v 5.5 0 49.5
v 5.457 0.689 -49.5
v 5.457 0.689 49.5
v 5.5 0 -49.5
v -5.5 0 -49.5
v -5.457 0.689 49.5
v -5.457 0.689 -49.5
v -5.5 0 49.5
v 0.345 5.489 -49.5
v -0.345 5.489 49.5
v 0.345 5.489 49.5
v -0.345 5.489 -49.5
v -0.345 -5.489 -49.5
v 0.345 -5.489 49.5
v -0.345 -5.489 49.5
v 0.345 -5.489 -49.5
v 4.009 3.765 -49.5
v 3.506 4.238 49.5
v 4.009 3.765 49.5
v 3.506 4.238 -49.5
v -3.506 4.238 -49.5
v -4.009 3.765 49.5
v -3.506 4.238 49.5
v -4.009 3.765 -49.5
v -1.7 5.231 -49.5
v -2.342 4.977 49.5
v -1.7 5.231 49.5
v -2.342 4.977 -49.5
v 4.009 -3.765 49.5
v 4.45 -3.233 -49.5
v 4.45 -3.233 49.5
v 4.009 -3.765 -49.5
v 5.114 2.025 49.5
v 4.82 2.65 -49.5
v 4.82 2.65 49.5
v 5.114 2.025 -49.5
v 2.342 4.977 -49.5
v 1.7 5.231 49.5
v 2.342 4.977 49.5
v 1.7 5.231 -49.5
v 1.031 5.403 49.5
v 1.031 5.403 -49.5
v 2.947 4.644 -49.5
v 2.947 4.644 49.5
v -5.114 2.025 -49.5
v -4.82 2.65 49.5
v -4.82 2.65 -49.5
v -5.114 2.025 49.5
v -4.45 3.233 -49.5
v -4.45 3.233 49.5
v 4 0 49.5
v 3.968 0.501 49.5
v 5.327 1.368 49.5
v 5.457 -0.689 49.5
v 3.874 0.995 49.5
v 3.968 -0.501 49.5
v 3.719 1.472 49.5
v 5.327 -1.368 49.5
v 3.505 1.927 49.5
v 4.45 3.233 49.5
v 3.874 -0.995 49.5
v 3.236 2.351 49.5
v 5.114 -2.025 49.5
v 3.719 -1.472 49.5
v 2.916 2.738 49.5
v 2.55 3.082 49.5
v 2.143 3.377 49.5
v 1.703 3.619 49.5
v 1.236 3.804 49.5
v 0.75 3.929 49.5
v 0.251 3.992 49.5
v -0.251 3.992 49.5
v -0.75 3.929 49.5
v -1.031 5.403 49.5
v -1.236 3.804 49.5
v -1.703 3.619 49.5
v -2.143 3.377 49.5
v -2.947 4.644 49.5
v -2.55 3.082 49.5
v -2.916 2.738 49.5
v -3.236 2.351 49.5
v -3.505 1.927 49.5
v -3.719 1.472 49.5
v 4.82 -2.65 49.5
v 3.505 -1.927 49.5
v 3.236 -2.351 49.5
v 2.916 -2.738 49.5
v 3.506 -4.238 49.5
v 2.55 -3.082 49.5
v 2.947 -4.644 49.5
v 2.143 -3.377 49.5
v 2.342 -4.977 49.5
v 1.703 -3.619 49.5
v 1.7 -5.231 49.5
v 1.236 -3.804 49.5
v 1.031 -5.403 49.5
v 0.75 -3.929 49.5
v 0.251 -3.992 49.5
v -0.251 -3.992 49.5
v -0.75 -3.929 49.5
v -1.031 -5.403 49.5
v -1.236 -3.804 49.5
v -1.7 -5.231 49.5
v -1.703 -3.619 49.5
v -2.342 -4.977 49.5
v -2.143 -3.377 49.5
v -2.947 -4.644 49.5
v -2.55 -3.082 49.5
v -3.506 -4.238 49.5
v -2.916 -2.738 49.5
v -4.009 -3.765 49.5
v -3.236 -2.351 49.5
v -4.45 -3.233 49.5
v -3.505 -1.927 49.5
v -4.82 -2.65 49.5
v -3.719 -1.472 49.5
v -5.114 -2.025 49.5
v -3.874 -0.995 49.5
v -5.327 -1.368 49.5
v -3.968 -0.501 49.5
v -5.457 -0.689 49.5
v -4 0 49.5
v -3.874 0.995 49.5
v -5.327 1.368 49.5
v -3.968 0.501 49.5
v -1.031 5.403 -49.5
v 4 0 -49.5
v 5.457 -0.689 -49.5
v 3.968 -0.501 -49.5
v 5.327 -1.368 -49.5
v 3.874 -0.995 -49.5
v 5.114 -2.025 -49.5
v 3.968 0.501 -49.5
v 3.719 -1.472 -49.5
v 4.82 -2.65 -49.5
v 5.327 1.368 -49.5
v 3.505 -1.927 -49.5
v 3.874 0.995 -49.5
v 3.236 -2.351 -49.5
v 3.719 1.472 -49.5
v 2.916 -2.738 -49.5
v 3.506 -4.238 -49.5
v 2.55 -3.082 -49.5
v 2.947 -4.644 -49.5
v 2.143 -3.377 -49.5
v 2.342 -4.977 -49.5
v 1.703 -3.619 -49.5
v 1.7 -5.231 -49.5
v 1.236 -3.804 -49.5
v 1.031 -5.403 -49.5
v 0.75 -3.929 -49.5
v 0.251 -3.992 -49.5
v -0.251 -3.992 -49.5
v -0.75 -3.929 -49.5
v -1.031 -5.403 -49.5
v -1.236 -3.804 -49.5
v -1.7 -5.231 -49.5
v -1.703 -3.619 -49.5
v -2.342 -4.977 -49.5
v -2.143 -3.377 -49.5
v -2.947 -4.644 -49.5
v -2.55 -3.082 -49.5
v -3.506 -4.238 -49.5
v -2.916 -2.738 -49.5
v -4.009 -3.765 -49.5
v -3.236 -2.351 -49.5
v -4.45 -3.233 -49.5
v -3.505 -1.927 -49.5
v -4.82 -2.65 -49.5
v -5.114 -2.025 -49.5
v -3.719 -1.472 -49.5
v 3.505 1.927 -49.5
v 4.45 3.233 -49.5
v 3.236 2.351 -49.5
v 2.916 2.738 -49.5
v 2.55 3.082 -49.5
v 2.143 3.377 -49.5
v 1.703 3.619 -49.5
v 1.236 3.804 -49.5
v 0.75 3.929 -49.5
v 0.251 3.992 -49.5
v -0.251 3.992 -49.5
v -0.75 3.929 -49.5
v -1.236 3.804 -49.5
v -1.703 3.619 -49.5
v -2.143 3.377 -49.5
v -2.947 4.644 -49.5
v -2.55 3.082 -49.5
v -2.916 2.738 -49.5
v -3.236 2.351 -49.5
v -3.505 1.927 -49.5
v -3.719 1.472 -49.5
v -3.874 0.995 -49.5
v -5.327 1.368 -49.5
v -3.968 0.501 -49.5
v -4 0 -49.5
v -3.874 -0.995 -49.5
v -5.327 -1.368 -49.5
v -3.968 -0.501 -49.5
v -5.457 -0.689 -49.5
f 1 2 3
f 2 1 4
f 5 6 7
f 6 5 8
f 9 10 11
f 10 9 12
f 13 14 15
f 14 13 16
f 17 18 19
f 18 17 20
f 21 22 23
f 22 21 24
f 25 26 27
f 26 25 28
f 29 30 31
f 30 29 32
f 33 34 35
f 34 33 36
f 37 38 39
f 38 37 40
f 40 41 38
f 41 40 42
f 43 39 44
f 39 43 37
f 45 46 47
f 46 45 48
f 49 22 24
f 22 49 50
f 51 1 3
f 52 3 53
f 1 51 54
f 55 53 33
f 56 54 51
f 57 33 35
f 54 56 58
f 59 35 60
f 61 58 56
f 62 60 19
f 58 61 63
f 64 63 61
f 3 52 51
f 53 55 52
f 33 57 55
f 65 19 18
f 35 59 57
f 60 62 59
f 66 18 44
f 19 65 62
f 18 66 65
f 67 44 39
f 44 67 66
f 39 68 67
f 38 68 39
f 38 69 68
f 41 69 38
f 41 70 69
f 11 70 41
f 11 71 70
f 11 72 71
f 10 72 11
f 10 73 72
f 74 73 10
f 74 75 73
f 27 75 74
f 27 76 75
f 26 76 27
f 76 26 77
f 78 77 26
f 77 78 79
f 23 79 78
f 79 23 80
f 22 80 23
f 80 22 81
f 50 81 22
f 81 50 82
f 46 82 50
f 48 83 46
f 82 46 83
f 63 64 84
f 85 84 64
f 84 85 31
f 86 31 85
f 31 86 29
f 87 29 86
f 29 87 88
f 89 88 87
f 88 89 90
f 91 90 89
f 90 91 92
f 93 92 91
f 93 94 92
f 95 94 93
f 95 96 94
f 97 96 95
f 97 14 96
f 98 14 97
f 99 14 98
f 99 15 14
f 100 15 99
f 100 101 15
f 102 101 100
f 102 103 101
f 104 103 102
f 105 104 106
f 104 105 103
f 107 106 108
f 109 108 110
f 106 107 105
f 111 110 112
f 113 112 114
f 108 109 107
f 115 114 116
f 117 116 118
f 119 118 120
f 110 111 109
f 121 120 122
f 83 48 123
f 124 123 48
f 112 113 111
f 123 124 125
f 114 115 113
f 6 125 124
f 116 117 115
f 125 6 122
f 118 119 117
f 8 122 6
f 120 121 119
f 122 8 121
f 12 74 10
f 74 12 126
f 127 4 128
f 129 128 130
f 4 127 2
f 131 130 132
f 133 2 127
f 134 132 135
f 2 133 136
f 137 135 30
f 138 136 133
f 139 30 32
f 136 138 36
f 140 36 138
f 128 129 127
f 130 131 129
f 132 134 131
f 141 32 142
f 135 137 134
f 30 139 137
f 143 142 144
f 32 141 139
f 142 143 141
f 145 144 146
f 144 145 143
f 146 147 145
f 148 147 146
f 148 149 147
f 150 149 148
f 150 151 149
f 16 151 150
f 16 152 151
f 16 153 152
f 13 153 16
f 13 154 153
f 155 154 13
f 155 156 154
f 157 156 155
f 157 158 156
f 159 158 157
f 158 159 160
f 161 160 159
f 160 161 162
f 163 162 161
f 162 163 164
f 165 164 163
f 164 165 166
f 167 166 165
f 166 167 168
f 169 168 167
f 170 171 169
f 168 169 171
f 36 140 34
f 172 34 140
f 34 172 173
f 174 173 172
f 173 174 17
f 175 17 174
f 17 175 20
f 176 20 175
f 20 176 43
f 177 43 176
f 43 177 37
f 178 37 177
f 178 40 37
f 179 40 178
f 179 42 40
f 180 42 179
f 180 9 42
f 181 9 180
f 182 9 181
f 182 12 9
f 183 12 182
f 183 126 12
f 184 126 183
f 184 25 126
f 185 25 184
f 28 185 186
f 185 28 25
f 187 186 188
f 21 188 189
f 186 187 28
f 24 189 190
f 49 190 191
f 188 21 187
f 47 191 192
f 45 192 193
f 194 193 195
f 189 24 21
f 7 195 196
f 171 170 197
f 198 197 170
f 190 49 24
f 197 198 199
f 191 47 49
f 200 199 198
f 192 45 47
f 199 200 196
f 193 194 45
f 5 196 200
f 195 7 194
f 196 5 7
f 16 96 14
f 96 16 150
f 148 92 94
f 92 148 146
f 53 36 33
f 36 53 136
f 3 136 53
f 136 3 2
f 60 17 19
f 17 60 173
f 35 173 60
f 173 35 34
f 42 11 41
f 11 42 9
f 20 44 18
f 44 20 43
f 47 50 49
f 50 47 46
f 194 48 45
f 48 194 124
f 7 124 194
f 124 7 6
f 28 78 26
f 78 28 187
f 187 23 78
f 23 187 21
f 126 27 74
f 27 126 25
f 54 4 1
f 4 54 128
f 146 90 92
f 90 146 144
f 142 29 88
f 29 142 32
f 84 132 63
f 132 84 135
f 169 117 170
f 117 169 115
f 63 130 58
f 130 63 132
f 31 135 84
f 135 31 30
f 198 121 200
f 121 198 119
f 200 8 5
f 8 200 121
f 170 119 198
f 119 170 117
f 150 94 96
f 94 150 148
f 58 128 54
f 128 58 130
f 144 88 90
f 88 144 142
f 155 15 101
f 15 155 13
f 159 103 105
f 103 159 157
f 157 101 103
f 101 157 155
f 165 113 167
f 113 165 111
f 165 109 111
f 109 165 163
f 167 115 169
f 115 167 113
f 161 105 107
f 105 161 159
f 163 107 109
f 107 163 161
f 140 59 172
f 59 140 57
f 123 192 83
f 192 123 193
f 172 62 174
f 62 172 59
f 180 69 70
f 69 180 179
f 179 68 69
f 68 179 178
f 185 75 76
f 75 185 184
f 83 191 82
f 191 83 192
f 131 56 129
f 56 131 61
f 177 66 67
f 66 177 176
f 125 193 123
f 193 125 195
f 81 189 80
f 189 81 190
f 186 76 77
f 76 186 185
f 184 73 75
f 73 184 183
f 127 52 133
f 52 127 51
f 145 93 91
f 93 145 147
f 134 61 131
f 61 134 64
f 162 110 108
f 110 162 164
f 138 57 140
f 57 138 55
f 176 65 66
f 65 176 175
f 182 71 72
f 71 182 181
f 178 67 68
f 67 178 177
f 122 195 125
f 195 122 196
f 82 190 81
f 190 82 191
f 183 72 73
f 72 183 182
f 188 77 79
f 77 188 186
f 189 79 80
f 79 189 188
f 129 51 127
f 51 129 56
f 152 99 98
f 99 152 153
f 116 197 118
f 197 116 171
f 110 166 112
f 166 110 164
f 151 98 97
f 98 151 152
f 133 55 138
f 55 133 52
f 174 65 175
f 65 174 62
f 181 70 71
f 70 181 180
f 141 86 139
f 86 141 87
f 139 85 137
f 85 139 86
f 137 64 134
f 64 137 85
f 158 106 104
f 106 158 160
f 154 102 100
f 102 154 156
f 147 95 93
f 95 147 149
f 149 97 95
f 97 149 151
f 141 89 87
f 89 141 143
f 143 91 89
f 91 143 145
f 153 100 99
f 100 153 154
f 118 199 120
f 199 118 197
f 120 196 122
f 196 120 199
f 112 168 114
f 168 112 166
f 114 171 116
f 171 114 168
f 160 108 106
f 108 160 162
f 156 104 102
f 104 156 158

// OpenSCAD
$fn = 50;


difference() {
	union() {
		translate(v = [0, 0, -49.5000000000]) {
			cylinder(h = 99, r = 5.5000000000);
		}
	}
	union() {
		translate(v = [0, 0, -100.0000000000]) {
			cylinder(h = 200, r = 4.0000000000);
		}
	}
}
